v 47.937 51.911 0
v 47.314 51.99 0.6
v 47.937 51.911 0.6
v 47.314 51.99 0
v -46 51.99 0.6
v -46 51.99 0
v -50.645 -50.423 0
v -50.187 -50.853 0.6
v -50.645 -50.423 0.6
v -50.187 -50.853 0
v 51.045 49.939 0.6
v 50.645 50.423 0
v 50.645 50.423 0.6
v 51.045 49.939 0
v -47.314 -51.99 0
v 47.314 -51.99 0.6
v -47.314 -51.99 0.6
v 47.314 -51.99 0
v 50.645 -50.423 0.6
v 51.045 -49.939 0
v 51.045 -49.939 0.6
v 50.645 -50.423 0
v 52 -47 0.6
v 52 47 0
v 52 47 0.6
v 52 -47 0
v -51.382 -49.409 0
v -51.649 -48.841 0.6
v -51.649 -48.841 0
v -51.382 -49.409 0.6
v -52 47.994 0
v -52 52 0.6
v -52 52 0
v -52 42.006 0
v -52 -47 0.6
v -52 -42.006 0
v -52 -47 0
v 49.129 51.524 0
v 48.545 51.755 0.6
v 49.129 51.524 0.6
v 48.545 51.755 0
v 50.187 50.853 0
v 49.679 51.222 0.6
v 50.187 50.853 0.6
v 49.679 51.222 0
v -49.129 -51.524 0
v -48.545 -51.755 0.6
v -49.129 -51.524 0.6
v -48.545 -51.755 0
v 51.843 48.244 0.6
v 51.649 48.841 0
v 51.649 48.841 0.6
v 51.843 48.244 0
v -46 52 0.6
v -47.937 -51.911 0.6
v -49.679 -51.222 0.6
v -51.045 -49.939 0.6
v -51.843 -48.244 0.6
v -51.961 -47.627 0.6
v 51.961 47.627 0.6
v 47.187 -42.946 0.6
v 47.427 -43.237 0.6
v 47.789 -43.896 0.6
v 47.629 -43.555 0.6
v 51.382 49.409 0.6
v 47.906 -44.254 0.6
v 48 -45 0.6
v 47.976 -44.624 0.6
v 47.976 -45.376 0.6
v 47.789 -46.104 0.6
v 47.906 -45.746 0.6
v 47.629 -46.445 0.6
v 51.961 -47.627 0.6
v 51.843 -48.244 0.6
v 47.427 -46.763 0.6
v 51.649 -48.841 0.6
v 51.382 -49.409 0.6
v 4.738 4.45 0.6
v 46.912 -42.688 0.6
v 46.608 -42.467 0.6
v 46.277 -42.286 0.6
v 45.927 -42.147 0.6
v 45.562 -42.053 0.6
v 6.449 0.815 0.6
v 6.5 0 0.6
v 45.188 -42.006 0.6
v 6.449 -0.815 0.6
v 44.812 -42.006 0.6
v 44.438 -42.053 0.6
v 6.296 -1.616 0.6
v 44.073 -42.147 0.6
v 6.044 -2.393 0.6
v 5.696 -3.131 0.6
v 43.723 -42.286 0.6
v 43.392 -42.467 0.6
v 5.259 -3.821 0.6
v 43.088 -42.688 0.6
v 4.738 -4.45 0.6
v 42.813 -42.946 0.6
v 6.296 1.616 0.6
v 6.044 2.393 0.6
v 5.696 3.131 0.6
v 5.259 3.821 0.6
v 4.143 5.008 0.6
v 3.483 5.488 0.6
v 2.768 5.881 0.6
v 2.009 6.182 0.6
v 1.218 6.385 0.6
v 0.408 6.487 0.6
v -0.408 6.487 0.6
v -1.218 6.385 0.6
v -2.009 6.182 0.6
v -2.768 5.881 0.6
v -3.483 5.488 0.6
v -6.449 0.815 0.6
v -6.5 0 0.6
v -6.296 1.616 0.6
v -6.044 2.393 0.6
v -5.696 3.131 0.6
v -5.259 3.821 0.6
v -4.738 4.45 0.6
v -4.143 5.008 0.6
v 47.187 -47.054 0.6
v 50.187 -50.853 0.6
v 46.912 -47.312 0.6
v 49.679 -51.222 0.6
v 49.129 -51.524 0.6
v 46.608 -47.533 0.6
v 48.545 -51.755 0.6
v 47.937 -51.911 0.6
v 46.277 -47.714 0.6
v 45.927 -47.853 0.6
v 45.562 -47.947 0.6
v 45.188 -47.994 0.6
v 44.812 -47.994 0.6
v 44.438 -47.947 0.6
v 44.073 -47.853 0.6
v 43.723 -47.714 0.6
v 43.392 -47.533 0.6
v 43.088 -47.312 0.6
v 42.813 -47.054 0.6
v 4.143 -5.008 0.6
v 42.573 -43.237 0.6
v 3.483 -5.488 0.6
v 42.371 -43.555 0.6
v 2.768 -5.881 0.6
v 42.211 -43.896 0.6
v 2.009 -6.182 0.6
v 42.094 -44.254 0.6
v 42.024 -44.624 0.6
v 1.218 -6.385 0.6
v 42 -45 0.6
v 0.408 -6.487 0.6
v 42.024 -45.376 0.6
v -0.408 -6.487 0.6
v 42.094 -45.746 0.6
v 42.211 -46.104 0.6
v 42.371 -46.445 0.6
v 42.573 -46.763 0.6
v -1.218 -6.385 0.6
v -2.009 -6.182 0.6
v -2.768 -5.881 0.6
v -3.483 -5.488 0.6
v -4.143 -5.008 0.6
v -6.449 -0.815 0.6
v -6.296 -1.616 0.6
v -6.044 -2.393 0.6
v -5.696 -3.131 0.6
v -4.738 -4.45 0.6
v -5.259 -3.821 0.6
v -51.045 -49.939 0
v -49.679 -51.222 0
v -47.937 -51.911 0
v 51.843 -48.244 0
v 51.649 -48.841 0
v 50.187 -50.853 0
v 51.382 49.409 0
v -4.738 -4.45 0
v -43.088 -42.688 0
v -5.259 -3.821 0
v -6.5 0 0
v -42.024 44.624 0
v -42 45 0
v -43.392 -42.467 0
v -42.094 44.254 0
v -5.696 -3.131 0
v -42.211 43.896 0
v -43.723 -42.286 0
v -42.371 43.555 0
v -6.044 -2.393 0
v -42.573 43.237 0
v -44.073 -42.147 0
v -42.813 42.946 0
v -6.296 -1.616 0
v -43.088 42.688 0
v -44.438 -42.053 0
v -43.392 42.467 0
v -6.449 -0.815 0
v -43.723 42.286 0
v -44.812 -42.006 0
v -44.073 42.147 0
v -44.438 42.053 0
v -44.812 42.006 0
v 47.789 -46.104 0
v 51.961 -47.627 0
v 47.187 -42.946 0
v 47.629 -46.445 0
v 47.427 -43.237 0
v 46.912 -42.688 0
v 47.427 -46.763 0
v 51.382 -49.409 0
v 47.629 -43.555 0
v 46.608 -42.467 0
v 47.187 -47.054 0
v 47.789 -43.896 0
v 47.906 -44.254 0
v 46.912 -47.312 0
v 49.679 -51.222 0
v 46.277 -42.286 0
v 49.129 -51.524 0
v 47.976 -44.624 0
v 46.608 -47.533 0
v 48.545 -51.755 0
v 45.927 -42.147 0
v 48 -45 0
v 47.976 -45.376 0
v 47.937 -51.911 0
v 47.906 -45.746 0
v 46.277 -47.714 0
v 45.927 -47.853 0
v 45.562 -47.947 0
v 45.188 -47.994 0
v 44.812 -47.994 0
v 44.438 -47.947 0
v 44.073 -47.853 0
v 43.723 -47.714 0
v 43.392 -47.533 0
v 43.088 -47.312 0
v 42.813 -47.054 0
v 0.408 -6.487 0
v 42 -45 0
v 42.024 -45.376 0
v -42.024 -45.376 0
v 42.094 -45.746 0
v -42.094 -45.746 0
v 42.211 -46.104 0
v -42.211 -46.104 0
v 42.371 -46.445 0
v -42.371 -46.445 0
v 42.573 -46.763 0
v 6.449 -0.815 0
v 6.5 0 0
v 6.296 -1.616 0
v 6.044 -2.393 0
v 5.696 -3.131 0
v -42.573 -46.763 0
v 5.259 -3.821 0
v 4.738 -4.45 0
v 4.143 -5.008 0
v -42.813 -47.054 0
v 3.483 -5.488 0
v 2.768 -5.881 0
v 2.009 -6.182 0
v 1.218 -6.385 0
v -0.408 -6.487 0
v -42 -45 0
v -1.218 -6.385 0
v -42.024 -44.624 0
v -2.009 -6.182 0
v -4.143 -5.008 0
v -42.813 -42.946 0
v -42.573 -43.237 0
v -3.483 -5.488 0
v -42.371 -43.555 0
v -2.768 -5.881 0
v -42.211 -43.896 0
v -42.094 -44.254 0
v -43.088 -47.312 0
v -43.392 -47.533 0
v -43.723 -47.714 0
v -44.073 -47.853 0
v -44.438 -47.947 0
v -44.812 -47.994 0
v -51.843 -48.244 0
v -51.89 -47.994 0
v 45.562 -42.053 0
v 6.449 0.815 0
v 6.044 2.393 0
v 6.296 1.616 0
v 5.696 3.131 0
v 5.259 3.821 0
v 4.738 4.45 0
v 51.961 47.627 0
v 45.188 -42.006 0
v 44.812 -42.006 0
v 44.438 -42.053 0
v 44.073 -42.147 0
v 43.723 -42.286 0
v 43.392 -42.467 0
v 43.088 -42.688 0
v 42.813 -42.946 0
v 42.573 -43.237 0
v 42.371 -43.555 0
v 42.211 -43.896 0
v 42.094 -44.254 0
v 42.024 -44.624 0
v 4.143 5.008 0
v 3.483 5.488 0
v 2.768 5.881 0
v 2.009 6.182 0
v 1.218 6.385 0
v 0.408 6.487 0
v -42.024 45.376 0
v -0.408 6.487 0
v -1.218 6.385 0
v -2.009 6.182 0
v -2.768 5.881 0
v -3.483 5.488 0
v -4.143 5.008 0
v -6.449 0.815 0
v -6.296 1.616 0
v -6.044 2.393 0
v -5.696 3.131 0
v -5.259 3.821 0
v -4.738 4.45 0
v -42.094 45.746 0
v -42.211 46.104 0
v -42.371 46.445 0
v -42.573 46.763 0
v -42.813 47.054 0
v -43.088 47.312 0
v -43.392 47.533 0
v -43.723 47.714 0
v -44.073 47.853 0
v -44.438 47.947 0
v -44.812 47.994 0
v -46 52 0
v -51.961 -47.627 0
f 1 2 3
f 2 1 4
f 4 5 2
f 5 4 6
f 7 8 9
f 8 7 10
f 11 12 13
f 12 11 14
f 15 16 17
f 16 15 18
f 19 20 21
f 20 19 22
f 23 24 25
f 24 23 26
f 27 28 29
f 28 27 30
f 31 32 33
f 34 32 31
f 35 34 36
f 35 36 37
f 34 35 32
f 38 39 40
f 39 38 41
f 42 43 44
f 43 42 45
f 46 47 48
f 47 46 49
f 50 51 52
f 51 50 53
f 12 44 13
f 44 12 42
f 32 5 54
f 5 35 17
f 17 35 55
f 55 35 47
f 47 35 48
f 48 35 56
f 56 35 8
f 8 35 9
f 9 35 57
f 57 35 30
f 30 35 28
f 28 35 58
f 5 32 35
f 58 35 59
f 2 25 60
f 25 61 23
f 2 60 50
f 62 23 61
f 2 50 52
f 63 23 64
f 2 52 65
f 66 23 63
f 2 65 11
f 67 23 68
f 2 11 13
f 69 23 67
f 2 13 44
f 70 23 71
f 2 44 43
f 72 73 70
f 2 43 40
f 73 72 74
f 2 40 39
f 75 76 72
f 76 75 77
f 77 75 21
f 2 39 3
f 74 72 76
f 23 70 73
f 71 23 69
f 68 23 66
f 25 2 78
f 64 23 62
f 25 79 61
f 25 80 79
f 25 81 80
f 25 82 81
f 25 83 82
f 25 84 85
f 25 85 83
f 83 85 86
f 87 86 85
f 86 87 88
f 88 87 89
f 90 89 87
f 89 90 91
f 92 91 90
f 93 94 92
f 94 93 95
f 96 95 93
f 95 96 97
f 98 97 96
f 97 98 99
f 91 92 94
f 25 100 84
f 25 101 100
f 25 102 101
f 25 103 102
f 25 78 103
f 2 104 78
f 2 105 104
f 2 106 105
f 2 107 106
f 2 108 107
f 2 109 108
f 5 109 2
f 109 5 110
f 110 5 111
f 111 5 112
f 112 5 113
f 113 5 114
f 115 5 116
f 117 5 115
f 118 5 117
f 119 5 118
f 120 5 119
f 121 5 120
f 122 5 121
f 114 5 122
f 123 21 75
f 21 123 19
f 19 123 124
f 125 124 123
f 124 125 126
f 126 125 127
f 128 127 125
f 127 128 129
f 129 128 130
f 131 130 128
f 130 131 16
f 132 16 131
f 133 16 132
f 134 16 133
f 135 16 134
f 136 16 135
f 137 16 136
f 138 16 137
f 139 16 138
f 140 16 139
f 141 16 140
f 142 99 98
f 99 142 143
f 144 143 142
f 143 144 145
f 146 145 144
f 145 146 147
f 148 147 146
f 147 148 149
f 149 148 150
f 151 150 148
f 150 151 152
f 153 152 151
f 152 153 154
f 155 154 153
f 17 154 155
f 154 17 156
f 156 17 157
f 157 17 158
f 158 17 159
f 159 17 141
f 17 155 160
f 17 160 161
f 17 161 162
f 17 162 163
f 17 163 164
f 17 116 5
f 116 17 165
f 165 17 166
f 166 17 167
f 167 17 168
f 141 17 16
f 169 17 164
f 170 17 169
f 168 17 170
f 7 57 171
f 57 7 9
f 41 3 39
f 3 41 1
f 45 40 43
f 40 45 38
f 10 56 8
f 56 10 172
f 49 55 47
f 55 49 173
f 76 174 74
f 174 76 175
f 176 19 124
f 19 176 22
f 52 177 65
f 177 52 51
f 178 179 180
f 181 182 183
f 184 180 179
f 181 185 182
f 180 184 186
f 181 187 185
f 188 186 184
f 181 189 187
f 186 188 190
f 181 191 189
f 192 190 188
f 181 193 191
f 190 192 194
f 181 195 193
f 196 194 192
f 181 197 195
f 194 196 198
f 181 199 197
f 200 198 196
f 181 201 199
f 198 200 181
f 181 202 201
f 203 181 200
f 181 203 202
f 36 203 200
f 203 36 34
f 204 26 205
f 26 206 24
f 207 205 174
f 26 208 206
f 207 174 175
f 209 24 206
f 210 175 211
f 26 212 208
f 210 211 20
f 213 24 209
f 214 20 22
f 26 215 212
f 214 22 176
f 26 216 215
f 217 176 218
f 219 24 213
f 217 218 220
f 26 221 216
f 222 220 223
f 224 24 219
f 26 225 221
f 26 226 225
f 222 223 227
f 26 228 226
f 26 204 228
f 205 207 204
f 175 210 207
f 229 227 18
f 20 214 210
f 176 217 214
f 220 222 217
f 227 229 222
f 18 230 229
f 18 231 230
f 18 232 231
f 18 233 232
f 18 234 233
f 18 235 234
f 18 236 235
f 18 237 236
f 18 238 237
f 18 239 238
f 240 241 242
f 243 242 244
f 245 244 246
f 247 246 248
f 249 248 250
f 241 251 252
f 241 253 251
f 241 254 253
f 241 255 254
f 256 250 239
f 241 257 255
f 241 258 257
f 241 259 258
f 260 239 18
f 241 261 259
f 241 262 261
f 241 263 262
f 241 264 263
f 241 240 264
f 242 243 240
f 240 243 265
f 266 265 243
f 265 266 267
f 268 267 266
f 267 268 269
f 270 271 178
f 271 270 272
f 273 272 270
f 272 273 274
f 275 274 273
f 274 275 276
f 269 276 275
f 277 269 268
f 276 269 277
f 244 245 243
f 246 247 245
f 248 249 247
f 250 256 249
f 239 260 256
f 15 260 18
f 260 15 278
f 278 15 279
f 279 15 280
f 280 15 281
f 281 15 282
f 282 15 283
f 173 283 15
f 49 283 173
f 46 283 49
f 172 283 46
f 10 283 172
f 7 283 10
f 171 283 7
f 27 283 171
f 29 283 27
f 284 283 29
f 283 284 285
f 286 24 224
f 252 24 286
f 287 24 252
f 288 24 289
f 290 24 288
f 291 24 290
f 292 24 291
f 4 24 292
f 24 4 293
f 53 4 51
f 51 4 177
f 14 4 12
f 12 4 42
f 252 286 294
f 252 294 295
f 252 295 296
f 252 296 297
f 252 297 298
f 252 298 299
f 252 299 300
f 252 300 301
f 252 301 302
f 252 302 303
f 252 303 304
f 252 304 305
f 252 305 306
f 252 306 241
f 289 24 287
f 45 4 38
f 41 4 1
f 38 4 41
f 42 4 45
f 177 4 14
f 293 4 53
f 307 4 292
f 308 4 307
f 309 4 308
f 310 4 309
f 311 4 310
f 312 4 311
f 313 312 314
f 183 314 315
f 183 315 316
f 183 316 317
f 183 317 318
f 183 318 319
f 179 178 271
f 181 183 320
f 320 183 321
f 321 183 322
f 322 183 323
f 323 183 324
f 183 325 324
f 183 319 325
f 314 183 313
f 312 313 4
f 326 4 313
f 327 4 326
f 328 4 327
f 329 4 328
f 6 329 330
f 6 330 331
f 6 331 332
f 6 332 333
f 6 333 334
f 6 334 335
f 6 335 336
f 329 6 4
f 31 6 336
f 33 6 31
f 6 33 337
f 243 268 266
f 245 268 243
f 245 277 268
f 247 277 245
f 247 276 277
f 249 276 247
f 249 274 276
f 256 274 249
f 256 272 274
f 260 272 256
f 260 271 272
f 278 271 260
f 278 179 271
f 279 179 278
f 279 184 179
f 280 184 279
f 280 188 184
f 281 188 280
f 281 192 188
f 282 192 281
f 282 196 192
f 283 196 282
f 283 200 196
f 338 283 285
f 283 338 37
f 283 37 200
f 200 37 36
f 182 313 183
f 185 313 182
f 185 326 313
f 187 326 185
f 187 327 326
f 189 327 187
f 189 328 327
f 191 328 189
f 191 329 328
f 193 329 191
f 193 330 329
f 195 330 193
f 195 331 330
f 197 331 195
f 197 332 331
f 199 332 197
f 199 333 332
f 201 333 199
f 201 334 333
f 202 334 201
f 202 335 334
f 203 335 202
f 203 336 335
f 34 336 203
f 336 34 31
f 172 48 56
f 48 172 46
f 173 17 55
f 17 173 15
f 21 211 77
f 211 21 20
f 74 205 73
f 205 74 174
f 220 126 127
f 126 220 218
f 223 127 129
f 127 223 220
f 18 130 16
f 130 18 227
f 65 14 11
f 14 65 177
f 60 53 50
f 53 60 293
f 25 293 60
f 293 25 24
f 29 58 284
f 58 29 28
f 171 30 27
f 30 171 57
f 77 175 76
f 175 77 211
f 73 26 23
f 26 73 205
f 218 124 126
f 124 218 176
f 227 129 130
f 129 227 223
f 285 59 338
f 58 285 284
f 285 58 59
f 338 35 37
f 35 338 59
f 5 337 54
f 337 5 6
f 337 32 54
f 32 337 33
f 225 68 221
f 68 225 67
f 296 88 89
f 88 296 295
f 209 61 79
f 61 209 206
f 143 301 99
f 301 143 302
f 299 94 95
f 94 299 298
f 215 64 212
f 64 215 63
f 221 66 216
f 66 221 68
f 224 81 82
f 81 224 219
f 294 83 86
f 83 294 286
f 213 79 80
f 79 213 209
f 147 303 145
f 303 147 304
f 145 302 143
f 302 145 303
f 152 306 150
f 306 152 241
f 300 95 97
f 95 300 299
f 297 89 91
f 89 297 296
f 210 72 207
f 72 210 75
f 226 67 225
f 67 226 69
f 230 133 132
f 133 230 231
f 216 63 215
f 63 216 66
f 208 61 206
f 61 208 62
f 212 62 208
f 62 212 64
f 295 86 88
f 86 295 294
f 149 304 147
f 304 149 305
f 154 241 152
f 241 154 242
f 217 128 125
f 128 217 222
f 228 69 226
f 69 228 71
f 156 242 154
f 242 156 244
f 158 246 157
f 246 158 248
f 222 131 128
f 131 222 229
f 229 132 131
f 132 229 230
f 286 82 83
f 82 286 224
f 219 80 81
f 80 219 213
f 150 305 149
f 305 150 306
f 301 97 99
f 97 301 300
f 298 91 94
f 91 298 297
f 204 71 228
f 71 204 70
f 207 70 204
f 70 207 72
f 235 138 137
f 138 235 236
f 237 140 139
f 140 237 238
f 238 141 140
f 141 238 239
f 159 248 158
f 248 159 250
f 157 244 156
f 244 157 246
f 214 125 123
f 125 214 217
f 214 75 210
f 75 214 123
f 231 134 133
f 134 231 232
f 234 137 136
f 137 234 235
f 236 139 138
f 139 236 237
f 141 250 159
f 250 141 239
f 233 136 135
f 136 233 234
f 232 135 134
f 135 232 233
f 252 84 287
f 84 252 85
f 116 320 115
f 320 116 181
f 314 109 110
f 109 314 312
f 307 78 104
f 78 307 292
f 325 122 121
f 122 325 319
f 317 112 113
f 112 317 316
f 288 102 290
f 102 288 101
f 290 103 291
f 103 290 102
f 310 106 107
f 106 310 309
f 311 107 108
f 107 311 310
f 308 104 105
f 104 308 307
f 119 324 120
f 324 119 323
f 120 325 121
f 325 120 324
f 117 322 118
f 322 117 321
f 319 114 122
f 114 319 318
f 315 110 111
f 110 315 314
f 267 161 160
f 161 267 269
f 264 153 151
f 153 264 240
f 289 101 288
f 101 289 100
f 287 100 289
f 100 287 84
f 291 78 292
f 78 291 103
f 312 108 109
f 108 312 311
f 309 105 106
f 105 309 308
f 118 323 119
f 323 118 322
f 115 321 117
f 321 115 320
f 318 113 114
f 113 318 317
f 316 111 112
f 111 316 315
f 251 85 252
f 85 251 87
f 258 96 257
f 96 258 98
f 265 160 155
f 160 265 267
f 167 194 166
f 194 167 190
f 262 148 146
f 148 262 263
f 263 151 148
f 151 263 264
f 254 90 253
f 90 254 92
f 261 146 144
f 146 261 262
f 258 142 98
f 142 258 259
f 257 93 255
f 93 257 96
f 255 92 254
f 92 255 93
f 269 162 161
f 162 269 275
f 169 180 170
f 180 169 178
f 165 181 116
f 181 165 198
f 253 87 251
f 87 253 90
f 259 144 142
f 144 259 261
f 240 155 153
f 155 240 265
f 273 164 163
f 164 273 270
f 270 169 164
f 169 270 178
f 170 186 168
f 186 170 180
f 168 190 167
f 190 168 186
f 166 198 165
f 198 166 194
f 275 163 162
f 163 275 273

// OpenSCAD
$fn = 50;


difference() {
	union() {
		hull() {
			translate(v = [-47.0000000000, 47.0000000000, 0]) {
				cylinder(h = 0.6000000000, r = 5);
			}
			translate(v = [47.0000000000, 47.0000000000, 0]) {
				cylinder(h = 0.6000000000, r = 5);
			}
			translate(v = [-47.0000000000, -47.0000000000, 0]) {
				cylinder(h = 0.6000000000, r = 5);
			}
			translate(v = [47.0000000000, -47.0000000000, 0]) {
				cylinder(h = 0.6000000000, r = 5);
			}
		}
		translate(v = [-52.0000000000, 46.0000000000, 0]) {
			cube(size = [6, 6, 0.6000000000]);
		}
	}
	union() {
		translate(v = [-52.5000000000, -45.0000000000, -250.0000000000]) {
			rotate(a = [0, 0, 0]) {
				difference() {
					union() {
						hull() {
							translate(v = [7.5000000000, 0, 0]) {
								cylinder(h = 250, r = 3.0000000000, r1 = 3.0000000000, r2 = 3.0000000000);
							}
							translate(v = [-7.5000000000, 0, 0]) {
								cylinder(h = 250, r = 3.0000000000, r1 = 3.0000000000, r2 = 3.0000000000);
							}
						}
					}
					union();
				}
			}
		}
		translate(v = [-52.5000000000, 45.0000000000, -250.0000000000]) {
			rotate(a = [0, 0, 0]) {
				difference() {
					union() {
						hull() {
							translate(v = [7.5000000000, 0, 0]) {
								cylinder(h = 250, r = 3.0000000000, r1 = 3.0000000000, r2 = 3.0000000000);
							}
							translate(v = [-7.5000000000, 0, 0]) {
								cylinder(h = 250, r = 3.0000000000, r1 = 3.0000000000, r2 = 3.0000000000);
							}
						}
					}
					union();
				}
			}
		}
		translate(v = [45.0000000000, -45.0000000000, -50.0000000000]) {
			cylinder(h = 100, r = 3.0000000000);
		}
		cylinder(h = 0.6000000000, r = 6.5000000000);
	}
}
